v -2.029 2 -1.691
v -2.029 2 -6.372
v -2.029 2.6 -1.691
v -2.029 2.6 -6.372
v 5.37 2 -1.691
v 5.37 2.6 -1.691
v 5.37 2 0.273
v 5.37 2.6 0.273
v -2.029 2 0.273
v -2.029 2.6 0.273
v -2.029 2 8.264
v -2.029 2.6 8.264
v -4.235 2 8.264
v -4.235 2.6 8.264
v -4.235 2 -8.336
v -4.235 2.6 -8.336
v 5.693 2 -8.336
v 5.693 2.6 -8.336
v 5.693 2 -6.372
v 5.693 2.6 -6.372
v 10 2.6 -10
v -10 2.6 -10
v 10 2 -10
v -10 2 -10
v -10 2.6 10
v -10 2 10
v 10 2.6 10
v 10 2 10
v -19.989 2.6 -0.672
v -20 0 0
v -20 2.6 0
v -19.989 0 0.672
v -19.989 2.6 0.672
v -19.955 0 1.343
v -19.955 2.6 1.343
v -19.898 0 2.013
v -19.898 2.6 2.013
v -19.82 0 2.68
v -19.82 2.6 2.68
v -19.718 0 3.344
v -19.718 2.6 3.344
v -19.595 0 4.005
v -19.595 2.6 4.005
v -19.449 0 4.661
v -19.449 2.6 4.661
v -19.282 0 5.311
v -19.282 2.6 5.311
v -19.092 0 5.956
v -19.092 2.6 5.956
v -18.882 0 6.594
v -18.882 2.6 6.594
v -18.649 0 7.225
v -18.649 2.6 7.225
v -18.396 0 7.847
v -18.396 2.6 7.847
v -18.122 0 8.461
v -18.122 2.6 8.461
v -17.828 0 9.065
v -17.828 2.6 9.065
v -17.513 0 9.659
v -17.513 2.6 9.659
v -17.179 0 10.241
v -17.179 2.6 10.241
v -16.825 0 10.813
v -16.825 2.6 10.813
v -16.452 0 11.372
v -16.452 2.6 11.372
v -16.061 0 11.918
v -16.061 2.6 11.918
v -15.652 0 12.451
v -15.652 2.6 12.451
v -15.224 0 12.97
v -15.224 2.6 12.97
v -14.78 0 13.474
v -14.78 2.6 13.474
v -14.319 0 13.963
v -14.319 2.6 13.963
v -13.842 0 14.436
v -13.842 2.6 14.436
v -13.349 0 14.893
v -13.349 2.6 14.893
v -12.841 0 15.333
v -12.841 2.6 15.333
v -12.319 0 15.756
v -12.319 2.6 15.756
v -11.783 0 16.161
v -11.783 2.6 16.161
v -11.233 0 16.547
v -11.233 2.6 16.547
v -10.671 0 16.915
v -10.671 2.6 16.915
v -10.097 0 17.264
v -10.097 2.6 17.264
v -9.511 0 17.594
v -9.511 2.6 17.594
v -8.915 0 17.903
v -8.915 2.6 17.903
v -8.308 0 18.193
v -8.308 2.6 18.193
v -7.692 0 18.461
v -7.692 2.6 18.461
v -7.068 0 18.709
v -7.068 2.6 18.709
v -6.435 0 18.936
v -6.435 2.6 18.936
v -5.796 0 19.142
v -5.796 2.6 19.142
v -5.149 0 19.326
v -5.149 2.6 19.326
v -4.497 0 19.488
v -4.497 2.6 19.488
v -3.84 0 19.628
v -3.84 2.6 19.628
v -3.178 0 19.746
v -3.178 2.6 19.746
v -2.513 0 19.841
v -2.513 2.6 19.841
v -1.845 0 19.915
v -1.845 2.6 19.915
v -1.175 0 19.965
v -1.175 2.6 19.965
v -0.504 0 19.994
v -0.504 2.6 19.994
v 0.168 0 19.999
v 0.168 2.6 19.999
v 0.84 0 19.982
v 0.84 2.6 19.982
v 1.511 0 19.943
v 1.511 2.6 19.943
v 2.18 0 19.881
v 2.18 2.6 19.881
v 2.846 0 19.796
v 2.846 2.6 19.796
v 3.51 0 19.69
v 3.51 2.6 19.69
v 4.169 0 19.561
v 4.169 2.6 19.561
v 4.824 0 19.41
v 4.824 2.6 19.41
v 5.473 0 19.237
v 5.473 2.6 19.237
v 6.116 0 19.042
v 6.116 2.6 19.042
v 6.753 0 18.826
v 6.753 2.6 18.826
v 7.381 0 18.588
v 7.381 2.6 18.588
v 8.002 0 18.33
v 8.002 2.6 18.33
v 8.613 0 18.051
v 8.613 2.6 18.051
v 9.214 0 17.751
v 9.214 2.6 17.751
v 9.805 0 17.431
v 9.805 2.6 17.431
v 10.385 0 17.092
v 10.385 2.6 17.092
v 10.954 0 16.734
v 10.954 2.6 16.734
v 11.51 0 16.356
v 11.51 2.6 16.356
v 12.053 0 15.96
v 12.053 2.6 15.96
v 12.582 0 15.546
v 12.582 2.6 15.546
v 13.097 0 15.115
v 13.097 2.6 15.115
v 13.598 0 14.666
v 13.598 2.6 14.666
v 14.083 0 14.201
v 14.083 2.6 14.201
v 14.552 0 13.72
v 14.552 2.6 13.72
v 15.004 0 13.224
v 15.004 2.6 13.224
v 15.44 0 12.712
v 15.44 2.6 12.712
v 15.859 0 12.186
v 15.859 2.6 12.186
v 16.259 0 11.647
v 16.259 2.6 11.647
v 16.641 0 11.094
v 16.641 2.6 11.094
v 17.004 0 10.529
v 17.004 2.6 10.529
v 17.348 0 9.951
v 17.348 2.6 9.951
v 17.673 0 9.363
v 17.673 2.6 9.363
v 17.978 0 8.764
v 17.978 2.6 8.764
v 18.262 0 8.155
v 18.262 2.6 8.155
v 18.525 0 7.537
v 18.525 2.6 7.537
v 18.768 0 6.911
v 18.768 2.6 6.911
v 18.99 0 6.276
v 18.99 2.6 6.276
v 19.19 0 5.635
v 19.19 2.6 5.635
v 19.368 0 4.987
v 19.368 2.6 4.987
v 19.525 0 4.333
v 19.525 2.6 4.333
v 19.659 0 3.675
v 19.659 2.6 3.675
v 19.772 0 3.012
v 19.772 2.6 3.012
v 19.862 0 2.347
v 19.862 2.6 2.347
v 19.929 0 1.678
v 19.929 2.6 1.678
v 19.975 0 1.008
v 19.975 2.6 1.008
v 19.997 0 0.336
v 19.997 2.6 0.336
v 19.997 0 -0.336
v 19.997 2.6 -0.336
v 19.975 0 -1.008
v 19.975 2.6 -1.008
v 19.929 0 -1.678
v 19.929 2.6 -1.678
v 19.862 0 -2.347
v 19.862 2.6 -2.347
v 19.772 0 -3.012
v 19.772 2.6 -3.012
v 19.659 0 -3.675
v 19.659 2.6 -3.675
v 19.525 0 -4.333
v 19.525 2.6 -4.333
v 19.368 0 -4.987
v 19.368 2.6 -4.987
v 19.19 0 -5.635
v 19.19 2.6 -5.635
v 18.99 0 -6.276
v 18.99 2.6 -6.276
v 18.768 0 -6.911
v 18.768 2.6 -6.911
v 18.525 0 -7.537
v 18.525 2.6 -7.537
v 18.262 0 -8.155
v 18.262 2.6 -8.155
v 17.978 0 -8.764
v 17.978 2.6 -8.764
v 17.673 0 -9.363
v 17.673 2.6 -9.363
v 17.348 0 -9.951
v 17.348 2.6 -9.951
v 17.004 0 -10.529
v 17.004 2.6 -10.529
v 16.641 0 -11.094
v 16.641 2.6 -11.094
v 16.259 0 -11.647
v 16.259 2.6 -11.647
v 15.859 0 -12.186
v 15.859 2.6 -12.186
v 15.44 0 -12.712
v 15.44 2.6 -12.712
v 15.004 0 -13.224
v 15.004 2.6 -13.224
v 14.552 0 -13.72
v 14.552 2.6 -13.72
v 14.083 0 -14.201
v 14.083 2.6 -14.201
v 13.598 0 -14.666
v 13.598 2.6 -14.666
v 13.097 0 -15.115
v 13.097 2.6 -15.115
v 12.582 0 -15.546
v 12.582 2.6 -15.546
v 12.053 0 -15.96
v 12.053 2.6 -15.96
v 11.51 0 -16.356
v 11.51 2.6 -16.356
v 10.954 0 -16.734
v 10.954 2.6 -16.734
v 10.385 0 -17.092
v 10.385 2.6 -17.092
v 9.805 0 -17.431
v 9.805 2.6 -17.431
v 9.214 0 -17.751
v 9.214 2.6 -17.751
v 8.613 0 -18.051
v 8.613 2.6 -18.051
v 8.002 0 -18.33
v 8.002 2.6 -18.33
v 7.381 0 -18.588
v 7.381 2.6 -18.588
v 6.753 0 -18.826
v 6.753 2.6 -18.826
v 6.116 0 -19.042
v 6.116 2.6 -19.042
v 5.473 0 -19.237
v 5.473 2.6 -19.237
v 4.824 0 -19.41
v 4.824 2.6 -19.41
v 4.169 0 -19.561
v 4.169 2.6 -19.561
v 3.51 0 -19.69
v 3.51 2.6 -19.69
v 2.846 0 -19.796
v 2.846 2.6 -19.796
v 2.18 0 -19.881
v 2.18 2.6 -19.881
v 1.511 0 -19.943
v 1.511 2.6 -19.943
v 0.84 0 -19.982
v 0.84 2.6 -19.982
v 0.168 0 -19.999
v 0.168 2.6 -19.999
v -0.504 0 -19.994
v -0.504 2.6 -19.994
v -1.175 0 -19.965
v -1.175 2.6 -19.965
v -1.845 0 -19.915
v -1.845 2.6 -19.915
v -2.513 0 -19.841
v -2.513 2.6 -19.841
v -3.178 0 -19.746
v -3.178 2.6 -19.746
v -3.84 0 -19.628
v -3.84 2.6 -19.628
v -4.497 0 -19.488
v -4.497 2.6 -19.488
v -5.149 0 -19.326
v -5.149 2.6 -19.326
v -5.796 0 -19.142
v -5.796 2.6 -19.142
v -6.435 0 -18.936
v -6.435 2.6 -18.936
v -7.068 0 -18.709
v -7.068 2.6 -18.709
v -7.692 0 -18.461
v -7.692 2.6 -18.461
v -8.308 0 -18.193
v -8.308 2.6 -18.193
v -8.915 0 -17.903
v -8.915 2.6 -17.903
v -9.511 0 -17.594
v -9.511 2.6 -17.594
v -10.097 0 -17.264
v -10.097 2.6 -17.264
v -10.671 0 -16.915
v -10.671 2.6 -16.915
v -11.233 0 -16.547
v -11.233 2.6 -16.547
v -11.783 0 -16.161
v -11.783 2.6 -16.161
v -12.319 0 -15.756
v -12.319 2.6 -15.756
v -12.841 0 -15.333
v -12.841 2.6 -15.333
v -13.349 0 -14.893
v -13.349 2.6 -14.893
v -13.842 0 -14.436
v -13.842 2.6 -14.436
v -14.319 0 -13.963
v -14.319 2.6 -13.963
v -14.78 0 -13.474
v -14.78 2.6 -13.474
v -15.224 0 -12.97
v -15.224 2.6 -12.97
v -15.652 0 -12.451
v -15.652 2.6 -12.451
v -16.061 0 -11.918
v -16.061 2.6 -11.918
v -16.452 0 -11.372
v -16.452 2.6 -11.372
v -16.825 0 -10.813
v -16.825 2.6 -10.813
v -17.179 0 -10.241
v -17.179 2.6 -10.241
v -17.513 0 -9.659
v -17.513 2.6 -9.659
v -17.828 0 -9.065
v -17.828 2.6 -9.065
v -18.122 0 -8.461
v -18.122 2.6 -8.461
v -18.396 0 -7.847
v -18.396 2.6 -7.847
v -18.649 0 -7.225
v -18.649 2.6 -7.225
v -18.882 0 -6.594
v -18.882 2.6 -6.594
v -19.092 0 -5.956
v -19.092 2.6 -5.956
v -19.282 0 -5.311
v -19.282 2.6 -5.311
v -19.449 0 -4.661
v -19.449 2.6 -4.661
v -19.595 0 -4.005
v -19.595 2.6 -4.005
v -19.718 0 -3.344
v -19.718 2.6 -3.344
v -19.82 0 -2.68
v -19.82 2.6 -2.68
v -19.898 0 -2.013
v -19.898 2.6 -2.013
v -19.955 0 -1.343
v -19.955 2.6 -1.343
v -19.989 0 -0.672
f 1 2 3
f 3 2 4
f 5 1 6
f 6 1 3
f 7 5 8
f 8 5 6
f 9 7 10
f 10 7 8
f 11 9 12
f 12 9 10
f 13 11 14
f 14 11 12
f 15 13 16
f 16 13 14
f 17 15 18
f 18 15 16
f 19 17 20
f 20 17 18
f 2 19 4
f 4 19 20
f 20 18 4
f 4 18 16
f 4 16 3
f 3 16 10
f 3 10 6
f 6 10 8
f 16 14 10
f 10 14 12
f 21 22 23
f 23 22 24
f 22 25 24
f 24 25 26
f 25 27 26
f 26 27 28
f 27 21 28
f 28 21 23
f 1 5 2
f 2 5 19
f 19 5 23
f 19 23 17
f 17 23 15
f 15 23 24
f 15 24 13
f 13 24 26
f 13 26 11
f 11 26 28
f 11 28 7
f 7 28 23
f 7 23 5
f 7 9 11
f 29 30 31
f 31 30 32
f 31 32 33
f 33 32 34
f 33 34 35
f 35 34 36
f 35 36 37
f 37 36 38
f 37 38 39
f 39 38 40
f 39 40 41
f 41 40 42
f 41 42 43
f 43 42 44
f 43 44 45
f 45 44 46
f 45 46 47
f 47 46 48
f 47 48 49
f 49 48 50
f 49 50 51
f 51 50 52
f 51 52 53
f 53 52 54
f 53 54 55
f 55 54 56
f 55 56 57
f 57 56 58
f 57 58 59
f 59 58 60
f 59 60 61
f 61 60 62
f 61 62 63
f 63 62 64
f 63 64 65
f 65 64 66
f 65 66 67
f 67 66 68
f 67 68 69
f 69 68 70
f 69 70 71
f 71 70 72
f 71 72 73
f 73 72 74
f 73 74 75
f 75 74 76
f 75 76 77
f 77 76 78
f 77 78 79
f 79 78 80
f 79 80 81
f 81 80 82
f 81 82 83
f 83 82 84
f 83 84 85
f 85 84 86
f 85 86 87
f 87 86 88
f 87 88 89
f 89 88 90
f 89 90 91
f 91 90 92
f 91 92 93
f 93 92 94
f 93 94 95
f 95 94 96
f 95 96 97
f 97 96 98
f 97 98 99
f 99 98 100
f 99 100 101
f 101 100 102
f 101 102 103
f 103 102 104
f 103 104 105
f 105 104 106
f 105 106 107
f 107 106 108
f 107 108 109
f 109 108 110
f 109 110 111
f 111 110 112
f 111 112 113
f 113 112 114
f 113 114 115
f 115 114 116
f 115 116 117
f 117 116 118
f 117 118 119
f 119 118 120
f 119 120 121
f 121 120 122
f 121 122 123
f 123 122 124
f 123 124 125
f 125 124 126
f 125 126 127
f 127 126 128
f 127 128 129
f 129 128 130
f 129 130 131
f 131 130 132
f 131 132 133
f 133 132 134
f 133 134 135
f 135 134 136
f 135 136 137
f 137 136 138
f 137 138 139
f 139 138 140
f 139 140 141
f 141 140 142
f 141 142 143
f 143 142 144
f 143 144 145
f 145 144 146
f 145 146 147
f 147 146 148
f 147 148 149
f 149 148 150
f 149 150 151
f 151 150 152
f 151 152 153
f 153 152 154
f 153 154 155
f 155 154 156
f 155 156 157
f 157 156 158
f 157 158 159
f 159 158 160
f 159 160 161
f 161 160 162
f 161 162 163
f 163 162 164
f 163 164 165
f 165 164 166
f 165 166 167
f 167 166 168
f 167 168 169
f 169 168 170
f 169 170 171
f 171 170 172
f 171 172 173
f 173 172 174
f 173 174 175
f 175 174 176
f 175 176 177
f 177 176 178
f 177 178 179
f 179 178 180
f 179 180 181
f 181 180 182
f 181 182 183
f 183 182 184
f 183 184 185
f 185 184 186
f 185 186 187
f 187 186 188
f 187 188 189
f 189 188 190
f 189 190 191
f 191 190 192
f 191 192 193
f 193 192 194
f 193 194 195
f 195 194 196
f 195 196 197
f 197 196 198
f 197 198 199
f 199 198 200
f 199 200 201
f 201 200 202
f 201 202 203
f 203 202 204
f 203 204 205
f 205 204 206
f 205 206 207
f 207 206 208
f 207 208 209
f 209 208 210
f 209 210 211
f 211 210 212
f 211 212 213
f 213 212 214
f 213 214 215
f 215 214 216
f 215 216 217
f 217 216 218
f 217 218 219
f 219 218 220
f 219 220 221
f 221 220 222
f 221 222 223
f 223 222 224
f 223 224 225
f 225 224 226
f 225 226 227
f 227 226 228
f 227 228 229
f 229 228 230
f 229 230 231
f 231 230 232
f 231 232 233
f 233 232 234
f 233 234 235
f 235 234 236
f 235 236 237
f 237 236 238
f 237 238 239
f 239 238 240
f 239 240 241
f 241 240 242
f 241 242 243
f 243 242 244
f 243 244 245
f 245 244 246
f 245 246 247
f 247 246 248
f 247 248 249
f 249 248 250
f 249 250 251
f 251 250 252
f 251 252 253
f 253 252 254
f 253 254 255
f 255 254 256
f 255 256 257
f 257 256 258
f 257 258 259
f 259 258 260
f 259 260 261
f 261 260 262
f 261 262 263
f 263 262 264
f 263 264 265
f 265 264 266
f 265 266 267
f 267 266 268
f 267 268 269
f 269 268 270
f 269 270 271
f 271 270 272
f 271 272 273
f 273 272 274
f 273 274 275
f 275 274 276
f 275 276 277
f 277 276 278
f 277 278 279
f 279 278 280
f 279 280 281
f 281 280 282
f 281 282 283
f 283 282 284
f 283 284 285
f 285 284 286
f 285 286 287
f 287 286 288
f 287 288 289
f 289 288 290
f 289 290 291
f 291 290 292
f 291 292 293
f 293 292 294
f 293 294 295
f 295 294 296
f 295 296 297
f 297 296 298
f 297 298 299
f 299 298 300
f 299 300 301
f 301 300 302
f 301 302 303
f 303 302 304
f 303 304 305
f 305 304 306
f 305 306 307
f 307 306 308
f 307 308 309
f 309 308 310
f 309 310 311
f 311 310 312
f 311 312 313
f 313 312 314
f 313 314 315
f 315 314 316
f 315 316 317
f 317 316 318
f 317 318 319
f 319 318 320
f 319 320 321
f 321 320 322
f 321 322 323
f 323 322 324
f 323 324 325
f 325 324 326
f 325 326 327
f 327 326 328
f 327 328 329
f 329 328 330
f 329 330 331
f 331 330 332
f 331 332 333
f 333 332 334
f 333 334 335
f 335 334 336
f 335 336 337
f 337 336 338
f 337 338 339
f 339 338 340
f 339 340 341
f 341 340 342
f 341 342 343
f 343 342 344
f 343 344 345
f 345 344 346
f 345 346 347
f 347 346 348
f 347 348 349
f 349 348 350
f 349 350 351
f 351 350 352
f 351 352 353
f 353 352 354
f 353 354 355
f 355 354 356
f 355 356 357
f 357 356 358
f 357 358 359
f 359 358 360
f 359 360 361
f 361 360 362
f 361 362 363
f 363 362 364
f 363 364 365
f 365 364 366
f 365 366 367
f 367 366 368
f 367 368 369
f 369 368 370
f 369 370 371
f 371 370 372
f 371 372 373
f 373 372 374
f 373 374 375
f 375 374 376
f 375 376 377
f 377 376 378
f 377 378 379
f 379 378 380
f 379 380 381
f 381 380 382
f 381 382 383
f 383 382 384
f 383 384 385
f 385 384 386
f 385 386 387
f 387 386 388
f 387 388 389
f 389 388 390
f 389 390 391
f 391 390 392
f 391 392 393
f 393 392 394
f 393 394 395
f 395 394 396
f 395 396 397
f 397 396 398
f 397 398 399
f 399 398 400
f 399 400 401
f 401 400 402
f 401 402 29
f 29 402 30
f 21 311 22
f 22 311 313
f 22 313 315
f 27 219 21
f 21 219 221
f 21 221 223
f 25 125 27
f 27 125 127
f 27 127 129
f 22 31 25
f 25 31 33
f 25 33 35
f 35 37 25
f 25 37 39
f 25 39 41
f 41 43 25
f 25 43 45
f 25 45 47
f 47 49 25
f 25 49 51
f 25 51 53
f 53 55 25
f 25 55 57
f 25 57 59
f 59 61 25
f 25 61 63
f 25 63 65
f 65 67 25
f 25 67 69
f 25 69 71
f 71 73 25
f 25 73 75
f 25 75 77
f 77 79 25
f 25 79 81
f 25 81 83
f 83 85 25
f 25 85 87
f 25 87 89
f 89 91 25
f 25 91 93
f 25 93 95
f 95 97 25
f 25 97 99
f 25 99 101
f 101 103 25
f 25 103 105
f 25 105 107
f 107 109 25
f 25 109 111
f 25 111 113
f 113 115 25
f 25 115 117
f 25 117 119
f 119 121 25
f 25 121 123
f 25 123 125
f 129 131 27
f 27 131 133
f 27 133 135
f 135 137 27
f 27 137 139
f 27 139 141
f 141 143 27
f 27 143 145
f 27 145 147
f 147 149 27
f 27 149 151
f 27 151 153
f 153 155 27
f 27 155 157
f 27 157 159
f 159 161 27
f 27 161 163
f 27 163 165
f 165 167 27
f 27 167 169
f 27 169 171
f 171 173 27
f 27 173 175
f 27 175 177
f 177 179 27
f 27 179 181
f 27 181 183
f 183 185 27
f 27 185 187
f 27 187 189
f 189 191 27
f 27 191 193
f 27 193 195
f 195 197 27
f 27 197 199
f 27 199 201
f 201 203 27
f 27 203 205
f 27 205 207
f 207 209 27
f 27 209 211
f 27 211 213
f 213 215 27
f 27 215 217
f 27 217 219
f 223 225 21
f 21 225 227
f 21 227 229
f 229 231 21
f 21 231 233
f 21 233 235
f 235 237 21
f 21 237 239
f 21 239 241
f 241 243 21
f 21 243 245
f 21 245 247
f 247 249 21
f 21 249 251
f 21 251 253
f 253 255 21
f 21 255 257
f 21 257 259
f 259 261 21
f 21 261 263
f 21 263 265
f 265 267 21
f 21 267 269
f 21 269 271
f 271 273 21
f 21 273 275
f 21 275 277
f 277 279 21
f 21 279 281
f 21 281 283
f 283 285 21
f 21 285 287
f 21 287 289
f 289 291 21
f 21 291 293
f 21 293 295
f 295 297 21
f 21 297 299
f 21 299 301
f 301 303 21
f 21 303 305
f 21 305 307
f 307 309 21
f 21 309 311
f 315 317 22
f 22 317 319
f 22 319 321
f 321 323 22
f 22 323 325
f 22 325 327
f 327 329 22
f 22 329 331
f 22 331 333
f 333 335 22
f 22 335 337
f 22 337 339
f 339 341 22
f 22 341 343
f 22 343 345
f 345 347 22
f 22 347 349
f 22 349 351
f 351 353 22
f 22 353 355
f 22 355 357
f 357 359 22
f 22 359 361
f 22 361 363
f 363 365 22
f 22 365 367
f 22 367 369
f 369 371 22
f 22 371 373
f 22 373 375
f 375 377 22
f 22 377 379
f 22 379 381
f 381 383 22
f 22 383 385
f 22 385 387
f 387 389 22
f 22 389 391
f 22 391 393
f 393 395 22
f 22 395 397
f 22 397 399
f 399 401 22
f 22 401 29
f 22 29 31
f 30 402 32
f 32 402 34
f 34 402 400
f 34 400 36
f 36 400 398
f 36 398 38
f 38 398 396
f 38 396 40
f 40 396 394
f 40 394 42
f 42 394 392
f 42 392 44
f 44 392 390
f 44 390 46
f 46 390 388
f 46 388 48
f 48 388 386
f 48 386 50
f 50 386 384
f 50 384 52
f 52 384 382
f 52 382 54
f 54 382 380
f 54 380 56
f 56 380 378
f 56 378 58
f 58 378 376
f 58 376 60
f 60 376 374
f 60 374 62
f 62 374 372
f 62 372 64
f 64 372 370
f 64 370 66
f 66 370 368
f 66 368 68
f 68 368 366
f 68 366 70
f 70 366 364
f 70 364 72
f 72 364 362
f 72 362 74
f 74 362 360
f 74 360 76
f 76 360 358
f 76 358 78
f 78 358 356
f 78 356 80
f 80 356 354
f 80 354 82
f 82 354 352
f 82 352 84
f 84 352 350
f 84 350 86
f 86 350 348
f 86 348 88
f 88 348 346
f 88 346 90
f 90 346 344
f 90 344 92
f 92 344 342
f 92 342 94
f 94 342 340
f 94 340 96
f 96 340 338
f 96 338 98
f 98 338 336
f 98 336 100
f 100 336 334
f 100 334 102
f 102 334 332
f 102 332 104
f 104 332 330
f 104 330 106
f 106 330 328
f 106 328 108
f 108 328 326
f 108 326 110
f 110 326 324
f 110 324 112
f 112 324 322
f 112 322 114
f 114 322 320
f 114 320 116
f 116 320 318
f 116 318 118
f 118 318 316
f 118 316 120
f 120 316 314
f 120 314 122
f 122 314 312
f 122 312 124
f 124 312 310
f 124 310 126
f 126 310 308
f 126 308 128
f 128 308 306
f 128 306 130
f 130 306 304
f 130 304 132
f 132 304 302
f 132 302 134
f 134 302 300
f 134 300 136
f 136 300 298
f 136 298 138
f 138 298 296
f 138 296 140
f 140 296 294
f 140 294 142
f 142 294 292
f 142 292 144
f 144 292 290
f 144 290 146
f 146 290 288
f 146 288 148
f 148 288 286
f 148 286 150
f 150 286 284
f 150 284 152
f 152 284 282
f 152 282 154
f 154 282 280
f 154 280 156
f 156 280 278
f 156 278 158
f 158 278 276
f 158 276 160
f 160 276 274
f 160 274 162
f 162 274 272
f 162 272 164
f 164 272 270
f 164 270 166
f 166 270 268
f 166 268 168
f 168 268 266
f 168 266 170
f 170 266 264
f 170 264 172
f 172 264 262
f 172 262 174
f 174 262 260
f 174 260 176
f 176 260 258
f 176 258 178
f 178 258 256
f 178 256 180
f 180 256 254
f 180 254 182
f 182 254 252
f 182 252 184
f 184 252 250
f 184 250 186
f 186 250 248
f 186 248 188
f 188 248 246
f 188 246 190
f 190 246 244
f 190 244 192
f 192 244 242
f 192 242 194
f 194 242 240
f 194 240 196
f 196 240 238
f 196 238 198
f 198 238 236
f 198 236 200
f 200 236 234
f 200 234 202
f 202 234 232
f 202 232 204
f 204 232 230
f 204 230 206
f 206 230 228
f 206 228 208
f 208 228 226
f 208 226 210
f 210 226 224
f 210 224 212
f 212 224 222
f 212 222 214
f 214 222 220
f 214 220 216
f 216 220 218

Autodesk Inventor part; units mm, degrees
ref_plane "YZ Plane" through (0, 0, 0) normal (1, 0, 0) x (0, 1, 0)
ref_plane "XZ Plane" through (0, 0, 0) normal (0, 1, 0) x (-1, 0, 0)
ref_plane "XY Plane" through (0, 0, 0) normal (0, 0, 1) x (1, 0, 0)
sketch "Sketch1" plane through (0, 0, 0) normal (0, 1, 0) x (-1, 0, 0)
  circle A0 centre (0, 0) radius 20
  dimension "d0" = 40
extrude "Extrusion1" add sketch "Sketch1" along normal blind 2.6
sketch "Sketch2" plane through (0, 2.6, 0) normal (0, 1, 0) x (1, 0, 0)
  line L0 (-10, -10) -> (-10, 10)
  line L1 (-10, 10) -> (10, 10)
  line L2 (10, 10) -> (10, -10)
  line L3 (10, -10) -> (-10, -10)
  line L4 (-10, -10) -> (10, 10) construction
  line L5 (-10, 10) -> (10, -10) construction
  point P0 (0, 0)
  dimension "d3" = 20
  dimension "d4" = 20
extrude "Extrusion2" cut sketch "Sketch2" against normal blind 0.6
sketch "Sketch3" plane through (0, 2, 0) normal (0, 1, 0) x (1, 0, 0)
  line L0 (-5.9162, 8.3364) -> (5.9889, 8.3364) construction
  line L1 (5.9889, 8.3364) -> (5.9889, -8.2636) construction
  line L2 (5.9889, -8.2636) -> (-5.9162, -8.2636) construction
  line L3 (-5.9162, -8.2636) -> (-5.9162, 8.3364) construction
  line L4 (5.693, 6.3723) -> (-2.0286, 6.3723)
  line L5 (-2.0286, 6.3723) -> (-2.0286, 1.691)
  line L6 (-2.0286, 1.691) -> (5.3701, 1.691)
  line L7 (5.3701, 1.691) -> (5.3701, -0.273)
  line L8 (5.3701, -0.273) -> (-2.0286, -0.273)
  line L9 (-2.0286, -0.273) -> (-2.0286, -8.2636)
  line L10 (-2.0286, -8.2636) -> (-4.2347, -8.2636)
  line L11 (-4.2347, -8.2636) -> (-4.2347, 8.3364)
  line L12 (-4.2347, 8.3364) -> (5.693, 8.3364)
  line L13 (5.693, 8.3364) -> (5.693, 6.3723)
  point P0 (0, 0)
extrude "Extrusion3" add sketch "Sketch3" along normal blind 0.6
properties part number "TopMarkerPreset"
